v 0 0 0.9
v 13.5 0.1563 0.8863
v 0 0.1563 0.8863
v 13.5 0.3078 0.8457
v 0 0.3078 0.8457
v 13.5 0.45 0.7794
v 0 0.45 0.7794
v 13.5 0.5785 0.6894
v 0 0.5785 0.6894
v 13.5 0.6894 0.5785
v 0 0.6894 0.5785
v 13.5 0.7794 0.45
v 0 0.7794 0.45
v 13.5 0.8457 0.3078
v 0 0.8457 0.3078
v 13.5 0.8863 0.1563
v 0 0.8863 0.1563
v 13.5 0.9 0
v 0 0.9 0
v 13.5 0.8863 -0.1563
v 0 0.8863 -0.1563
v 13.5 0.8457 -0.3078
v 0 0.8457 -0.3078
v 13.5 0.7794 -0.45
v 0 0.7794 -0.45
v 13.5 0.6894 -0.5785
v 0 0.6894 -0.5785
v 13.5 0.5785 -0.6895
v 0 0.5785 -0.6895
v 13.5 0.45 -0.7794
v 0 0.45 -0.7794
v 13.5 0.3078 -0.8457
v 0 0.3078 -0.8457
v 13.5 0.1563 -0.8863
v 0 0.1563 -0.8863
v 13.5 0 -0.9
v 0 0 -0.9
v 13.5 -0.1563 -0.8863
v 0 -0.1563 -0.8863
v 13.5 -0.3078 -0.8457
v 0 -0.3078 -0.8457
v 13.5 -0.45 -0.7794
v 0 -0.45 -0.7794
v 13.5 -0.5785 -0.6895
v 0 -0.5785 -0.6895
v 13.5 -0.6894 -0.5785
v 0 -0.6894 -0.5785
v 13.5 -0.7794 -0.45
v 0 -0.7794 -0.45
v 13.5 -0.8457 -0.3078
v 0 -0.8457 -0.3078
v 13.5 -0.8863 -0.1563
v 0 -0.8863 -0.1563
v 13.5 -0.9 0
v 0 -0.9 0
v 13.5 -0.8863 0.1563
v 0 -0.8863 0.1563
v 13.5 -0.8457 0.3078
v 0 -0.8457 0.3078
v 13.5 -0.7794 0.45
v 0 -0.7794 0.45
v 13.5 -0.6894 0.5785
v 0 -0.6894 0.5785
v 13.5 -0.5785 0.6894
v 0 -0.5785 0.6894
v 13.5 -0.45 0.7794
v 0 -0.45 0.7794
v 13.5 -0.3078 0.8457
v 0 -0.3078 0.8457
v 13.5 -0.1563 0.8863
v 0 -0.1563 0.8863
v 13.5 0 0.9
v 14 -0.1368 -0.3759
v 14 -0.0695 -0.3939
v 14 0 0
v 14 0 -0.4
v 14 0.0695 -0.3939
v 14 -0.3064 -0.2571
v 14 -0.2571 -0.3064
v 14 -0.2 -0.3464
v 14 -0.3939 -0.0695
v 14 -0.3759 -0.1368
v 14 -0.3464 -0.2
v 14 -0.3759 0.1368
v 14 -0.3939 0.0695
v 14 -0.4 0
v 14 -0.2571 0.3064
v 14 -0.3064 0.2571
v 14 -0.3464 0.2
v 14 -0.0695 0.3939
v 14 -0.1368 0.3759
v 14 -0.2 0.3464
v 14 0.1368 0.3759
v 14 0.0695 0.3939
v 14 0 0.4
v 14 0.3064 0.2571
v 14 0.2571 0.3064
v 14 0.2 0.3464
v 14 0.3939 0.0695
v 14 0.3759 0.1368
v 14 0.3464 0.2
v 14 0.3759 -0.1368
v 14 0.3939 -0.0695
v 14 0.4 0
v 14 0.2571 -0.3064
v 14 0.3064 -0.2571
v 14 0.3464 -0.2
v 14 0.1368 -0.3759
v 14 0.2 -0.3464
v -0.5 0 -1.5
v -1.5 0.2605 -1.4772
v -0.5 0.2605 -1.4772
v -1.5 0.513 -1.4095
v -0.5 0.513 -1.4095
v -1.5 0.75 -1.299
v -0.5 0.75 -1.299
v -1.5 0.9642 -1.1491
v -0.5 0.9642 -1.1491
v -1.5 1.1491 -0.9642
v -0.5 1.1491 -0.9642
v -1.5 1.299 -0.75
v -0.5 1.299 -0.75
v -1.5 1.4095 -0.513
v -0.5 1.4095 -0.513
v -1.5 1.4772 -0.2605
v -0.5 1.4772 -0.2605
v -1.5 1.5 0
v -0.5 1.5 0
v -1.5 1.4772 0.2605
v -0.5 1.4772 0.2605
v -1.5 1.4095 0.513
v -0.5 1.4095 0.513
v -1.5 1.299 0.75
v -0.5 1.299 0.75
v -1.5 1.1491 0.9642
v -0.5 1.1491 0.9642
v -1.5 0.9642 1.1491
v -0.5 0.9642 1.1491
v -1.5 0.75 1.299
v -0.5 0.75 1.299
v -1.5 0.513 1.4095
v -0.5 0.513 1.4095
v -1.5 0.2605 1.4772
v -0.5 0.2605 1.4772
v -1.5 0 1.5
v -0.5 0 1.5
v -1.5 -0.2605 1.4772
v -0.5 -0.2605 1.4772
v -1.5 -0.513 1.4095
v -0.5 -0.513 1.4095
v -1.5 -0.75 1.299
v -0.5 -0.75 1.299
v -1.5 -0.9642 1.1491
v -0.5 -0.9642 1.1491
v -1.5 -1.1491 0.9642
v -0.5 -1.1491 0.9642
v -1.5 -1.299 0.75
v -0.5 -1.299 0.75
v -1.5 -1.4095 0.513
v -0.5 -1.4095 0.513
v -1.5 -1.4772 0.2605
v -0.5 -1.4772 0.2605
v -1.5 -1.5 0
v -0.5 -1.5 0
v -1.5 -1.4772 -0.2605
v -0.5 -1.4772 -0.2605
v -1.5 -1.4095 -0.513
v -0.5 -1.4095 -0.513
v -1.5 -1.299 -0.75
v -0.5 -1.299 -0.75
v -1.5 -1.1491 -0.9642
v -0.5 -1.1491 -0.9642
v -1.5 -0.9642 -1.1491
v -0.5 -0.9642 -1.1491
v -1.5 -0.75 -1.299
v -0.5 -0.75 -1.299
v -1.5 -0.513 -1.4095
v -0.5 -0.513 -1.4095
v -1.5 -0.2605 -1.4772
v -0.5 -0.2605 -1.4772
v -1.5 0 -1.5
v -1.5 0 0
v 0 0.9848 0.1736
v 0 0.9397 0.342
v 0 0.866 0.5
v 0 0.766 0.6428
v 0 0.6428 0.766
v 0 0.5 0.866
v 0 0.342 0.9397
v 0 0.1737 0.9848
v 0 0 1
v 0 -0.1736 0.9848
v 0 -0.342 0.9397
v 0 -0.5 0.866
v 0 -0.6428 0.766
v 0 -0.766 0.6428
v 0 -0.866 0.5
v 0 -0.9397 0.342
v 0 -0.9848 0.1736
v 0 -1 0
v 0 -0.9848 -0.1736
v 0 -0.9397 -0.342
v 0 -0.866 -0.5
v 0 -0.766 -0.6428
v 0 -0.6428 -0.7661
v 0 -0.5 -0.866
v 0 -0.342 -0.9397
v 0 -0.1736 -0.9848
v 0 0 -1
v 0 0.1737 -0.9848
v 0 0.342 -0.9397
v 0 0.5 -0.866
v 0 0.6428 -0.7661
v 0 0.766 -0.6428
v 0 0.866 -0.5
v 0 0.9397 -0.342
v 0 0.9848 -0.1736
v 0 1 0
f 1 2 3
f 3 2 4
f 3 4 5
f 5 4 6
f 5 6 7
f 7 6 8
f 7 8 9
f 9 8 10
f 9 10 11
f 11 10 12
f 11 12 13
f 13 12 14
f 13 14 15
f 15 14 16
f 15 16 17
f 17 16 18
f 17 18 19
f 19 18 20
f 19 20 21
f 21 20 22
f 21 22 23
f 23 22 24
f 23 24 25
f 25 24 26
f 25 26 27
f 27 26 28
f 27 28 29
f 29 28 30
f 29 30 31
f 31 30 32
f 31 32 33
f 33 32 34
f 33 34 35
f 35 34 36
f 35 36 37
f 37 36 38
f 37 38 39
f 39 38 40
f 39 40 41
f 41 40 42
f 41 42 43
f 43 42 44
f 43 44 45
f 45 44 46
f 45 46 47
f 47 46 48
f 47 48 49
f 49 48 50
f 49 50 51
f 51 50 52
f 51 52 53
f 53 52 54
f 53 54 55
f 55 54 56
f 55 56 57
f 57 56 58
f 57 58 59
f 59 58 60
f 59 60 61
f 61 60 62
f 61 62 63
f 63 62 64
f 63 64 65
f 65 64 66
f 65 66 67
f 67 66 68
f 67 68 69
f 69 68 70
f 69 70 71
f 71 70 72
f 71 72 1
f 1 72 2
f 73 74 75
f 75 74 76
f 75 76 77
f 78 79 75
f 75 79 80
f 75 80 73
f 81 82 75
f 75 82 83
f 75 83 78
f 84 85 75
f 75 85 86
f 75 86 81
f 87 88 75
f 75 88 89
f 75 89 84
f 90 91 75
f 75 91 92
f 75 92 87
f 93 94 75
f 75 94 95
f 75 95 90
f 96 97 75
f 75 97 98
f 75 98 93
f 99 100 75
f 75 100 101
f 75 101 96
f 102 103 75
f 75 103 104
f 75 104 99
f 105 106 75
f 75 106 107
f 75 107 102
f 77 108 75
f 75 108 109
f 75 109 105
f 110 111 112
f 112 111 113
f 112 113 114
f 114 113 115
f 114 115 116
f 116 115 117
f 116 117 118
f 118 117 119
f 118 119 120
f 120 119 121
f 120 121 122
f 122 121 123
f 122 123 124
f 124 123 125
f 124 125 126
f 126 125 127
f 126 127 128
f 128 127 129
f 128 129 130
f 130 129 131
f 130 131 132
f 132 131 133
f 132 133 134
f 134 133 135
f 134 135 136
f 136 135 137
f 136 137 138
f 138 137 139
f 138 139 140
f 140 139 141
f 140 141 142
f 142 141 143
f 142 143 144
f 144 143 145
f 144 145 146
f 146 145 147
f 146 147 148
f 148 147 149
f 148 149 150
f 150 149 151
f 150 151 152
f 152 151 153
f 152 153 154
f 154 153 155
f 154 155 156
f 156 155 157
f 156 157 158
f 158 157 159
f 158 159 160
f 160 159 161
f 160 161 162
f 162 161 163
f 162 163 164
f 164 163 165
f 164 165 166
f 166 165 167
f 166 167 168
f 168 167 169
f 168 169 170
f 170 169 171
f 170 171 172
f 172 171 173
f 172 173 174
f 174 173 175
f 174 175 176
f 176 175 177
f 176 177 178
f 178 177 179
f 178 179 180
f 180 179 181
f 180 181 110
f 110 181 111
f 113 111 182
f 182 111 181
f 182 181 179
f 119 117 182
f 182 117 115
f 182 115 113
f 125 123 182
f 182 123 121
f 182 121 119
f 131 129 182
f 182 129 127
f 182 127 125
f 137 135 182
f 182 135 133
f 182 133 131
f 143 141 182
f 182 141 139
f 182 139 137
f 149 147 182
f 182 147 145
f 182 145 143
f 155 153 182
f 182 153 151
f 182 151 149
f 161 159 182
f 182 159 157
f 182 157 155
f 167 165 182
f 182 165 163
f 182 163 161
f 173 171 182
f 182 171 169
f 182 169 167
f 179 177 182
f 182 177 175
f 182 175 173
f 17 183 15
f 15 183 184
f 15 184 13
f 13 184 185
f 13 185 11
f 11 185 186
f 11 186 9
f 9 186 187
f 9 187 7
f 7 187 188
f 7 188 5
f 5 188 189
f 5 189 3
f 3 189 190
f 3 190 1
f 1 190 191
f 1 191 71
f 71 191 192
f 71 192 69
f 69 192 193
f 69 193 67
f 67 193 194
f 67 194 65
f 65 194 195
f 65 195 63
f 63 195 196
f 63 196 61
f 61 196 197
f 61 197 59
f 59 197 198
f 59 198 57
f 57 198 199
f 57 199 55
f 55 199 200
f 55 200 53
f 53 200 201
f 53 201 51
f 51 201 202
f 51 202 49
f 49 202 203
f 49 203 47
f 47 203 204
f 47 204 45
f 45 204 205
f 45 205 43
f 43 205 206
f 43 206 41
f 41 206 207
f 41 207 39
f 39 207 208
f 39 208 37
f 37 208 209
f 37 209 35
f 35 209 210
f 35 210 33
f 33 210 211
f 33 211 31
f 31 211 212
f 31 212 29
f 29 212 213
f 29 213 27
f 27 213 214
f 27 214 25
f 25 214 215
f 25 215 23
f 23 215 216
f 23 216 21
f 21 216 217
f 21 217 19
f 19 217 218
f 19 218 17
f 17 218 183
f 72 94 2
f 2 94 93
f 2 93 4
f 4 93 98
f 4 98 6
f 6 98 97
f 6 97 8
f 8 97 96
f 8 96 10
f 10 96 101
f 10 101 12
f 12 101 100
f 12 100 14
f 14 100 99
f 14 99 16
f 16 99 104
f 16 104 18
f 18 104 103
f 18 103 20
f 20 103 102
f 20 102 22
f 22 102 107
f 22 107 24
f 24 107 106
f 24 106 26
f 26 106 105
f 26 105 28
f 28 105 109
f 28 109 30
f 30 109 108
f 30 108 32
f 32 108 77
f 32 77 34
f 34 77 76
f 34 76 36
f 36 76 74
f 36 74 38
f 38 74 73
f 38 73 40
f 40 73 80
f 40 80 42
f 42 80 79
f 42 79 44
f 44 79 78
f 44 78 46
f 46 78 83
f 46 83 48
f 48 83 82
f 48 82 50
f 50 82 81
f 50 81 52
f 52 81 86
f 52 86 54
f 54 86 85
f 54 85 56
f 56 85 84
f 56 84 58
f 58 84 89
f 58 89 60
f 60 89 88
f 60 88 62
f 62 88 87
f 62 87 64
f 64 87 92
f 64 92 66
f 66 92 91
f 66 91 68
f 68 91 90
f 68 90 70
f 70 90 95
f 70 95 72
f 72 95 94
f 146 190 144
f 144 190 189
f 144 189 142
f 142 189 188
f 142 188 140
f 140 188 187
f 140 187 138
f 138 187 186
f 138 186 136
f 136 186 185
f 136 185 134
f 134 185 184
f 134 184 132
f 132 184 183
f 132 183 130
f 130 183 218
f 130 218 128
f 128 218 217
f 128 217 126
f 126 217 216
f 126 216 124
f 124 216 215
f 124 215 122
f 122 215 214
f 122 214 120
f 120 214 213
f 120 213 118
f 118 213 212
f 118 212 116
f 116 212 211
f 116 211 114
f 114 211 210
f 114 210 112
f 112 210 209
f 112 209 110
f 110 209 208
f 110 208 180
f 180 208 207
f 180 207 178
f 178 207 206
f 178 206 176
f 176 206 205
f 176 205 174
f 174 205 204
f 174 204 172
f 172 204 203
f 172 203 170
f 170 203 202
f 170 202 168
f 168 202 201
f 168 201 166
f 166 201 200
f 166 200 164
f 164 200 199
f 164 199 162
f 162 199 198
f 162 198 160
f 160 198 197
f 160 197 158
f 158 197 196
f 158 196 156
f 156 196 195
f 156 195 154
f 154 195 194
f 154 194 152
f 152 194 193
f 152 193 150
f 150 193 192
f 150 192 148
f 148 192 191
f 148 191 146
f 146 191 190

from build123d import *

# Parameters (mm, degrees)
SKETCH1_R           = 0.9
BOSS_EXTRUDE1_DEPTH = 14
SKETCH2_R           = 1.5
BOSS_EXTRUDE2_DEPTH = 1.5
CHAMFER1_SIZE       = 0.5


with BuildPart() as part:
    # Sketch1 → Boss-Extrude1 (new body)
    with BuildSketch(Plane(origin=(0, 0, 0), x_dir=(0, 0, -1), z_dir=(1, 0, 0))):
        Circle(SKETCH1_R)
    extrude(amount=BOSS_EXTRUDE1_DEPTH)

    # Sketch2 → Boss-Extrude2 (add)
    with BuildSketch(Plane(origin=(0, 0, 0), x_dir=(0, 0, -1), z_dir=(1, 0, 0))):
        Circle(SKETCH2_R)
    extrude(amount=-BOSS_EXTRUDE2_DEPTH)

    # Chamfer1
    chamfer1_edges = [part.edges().sort_by_distance(p)[0] for p in [
        (14, 0, 0.9),
        (0, 0, 1.5),
    ]]
    chamfer(chamfer1_edges, length=CHAMFER1_SIZE)


solid = part.part
